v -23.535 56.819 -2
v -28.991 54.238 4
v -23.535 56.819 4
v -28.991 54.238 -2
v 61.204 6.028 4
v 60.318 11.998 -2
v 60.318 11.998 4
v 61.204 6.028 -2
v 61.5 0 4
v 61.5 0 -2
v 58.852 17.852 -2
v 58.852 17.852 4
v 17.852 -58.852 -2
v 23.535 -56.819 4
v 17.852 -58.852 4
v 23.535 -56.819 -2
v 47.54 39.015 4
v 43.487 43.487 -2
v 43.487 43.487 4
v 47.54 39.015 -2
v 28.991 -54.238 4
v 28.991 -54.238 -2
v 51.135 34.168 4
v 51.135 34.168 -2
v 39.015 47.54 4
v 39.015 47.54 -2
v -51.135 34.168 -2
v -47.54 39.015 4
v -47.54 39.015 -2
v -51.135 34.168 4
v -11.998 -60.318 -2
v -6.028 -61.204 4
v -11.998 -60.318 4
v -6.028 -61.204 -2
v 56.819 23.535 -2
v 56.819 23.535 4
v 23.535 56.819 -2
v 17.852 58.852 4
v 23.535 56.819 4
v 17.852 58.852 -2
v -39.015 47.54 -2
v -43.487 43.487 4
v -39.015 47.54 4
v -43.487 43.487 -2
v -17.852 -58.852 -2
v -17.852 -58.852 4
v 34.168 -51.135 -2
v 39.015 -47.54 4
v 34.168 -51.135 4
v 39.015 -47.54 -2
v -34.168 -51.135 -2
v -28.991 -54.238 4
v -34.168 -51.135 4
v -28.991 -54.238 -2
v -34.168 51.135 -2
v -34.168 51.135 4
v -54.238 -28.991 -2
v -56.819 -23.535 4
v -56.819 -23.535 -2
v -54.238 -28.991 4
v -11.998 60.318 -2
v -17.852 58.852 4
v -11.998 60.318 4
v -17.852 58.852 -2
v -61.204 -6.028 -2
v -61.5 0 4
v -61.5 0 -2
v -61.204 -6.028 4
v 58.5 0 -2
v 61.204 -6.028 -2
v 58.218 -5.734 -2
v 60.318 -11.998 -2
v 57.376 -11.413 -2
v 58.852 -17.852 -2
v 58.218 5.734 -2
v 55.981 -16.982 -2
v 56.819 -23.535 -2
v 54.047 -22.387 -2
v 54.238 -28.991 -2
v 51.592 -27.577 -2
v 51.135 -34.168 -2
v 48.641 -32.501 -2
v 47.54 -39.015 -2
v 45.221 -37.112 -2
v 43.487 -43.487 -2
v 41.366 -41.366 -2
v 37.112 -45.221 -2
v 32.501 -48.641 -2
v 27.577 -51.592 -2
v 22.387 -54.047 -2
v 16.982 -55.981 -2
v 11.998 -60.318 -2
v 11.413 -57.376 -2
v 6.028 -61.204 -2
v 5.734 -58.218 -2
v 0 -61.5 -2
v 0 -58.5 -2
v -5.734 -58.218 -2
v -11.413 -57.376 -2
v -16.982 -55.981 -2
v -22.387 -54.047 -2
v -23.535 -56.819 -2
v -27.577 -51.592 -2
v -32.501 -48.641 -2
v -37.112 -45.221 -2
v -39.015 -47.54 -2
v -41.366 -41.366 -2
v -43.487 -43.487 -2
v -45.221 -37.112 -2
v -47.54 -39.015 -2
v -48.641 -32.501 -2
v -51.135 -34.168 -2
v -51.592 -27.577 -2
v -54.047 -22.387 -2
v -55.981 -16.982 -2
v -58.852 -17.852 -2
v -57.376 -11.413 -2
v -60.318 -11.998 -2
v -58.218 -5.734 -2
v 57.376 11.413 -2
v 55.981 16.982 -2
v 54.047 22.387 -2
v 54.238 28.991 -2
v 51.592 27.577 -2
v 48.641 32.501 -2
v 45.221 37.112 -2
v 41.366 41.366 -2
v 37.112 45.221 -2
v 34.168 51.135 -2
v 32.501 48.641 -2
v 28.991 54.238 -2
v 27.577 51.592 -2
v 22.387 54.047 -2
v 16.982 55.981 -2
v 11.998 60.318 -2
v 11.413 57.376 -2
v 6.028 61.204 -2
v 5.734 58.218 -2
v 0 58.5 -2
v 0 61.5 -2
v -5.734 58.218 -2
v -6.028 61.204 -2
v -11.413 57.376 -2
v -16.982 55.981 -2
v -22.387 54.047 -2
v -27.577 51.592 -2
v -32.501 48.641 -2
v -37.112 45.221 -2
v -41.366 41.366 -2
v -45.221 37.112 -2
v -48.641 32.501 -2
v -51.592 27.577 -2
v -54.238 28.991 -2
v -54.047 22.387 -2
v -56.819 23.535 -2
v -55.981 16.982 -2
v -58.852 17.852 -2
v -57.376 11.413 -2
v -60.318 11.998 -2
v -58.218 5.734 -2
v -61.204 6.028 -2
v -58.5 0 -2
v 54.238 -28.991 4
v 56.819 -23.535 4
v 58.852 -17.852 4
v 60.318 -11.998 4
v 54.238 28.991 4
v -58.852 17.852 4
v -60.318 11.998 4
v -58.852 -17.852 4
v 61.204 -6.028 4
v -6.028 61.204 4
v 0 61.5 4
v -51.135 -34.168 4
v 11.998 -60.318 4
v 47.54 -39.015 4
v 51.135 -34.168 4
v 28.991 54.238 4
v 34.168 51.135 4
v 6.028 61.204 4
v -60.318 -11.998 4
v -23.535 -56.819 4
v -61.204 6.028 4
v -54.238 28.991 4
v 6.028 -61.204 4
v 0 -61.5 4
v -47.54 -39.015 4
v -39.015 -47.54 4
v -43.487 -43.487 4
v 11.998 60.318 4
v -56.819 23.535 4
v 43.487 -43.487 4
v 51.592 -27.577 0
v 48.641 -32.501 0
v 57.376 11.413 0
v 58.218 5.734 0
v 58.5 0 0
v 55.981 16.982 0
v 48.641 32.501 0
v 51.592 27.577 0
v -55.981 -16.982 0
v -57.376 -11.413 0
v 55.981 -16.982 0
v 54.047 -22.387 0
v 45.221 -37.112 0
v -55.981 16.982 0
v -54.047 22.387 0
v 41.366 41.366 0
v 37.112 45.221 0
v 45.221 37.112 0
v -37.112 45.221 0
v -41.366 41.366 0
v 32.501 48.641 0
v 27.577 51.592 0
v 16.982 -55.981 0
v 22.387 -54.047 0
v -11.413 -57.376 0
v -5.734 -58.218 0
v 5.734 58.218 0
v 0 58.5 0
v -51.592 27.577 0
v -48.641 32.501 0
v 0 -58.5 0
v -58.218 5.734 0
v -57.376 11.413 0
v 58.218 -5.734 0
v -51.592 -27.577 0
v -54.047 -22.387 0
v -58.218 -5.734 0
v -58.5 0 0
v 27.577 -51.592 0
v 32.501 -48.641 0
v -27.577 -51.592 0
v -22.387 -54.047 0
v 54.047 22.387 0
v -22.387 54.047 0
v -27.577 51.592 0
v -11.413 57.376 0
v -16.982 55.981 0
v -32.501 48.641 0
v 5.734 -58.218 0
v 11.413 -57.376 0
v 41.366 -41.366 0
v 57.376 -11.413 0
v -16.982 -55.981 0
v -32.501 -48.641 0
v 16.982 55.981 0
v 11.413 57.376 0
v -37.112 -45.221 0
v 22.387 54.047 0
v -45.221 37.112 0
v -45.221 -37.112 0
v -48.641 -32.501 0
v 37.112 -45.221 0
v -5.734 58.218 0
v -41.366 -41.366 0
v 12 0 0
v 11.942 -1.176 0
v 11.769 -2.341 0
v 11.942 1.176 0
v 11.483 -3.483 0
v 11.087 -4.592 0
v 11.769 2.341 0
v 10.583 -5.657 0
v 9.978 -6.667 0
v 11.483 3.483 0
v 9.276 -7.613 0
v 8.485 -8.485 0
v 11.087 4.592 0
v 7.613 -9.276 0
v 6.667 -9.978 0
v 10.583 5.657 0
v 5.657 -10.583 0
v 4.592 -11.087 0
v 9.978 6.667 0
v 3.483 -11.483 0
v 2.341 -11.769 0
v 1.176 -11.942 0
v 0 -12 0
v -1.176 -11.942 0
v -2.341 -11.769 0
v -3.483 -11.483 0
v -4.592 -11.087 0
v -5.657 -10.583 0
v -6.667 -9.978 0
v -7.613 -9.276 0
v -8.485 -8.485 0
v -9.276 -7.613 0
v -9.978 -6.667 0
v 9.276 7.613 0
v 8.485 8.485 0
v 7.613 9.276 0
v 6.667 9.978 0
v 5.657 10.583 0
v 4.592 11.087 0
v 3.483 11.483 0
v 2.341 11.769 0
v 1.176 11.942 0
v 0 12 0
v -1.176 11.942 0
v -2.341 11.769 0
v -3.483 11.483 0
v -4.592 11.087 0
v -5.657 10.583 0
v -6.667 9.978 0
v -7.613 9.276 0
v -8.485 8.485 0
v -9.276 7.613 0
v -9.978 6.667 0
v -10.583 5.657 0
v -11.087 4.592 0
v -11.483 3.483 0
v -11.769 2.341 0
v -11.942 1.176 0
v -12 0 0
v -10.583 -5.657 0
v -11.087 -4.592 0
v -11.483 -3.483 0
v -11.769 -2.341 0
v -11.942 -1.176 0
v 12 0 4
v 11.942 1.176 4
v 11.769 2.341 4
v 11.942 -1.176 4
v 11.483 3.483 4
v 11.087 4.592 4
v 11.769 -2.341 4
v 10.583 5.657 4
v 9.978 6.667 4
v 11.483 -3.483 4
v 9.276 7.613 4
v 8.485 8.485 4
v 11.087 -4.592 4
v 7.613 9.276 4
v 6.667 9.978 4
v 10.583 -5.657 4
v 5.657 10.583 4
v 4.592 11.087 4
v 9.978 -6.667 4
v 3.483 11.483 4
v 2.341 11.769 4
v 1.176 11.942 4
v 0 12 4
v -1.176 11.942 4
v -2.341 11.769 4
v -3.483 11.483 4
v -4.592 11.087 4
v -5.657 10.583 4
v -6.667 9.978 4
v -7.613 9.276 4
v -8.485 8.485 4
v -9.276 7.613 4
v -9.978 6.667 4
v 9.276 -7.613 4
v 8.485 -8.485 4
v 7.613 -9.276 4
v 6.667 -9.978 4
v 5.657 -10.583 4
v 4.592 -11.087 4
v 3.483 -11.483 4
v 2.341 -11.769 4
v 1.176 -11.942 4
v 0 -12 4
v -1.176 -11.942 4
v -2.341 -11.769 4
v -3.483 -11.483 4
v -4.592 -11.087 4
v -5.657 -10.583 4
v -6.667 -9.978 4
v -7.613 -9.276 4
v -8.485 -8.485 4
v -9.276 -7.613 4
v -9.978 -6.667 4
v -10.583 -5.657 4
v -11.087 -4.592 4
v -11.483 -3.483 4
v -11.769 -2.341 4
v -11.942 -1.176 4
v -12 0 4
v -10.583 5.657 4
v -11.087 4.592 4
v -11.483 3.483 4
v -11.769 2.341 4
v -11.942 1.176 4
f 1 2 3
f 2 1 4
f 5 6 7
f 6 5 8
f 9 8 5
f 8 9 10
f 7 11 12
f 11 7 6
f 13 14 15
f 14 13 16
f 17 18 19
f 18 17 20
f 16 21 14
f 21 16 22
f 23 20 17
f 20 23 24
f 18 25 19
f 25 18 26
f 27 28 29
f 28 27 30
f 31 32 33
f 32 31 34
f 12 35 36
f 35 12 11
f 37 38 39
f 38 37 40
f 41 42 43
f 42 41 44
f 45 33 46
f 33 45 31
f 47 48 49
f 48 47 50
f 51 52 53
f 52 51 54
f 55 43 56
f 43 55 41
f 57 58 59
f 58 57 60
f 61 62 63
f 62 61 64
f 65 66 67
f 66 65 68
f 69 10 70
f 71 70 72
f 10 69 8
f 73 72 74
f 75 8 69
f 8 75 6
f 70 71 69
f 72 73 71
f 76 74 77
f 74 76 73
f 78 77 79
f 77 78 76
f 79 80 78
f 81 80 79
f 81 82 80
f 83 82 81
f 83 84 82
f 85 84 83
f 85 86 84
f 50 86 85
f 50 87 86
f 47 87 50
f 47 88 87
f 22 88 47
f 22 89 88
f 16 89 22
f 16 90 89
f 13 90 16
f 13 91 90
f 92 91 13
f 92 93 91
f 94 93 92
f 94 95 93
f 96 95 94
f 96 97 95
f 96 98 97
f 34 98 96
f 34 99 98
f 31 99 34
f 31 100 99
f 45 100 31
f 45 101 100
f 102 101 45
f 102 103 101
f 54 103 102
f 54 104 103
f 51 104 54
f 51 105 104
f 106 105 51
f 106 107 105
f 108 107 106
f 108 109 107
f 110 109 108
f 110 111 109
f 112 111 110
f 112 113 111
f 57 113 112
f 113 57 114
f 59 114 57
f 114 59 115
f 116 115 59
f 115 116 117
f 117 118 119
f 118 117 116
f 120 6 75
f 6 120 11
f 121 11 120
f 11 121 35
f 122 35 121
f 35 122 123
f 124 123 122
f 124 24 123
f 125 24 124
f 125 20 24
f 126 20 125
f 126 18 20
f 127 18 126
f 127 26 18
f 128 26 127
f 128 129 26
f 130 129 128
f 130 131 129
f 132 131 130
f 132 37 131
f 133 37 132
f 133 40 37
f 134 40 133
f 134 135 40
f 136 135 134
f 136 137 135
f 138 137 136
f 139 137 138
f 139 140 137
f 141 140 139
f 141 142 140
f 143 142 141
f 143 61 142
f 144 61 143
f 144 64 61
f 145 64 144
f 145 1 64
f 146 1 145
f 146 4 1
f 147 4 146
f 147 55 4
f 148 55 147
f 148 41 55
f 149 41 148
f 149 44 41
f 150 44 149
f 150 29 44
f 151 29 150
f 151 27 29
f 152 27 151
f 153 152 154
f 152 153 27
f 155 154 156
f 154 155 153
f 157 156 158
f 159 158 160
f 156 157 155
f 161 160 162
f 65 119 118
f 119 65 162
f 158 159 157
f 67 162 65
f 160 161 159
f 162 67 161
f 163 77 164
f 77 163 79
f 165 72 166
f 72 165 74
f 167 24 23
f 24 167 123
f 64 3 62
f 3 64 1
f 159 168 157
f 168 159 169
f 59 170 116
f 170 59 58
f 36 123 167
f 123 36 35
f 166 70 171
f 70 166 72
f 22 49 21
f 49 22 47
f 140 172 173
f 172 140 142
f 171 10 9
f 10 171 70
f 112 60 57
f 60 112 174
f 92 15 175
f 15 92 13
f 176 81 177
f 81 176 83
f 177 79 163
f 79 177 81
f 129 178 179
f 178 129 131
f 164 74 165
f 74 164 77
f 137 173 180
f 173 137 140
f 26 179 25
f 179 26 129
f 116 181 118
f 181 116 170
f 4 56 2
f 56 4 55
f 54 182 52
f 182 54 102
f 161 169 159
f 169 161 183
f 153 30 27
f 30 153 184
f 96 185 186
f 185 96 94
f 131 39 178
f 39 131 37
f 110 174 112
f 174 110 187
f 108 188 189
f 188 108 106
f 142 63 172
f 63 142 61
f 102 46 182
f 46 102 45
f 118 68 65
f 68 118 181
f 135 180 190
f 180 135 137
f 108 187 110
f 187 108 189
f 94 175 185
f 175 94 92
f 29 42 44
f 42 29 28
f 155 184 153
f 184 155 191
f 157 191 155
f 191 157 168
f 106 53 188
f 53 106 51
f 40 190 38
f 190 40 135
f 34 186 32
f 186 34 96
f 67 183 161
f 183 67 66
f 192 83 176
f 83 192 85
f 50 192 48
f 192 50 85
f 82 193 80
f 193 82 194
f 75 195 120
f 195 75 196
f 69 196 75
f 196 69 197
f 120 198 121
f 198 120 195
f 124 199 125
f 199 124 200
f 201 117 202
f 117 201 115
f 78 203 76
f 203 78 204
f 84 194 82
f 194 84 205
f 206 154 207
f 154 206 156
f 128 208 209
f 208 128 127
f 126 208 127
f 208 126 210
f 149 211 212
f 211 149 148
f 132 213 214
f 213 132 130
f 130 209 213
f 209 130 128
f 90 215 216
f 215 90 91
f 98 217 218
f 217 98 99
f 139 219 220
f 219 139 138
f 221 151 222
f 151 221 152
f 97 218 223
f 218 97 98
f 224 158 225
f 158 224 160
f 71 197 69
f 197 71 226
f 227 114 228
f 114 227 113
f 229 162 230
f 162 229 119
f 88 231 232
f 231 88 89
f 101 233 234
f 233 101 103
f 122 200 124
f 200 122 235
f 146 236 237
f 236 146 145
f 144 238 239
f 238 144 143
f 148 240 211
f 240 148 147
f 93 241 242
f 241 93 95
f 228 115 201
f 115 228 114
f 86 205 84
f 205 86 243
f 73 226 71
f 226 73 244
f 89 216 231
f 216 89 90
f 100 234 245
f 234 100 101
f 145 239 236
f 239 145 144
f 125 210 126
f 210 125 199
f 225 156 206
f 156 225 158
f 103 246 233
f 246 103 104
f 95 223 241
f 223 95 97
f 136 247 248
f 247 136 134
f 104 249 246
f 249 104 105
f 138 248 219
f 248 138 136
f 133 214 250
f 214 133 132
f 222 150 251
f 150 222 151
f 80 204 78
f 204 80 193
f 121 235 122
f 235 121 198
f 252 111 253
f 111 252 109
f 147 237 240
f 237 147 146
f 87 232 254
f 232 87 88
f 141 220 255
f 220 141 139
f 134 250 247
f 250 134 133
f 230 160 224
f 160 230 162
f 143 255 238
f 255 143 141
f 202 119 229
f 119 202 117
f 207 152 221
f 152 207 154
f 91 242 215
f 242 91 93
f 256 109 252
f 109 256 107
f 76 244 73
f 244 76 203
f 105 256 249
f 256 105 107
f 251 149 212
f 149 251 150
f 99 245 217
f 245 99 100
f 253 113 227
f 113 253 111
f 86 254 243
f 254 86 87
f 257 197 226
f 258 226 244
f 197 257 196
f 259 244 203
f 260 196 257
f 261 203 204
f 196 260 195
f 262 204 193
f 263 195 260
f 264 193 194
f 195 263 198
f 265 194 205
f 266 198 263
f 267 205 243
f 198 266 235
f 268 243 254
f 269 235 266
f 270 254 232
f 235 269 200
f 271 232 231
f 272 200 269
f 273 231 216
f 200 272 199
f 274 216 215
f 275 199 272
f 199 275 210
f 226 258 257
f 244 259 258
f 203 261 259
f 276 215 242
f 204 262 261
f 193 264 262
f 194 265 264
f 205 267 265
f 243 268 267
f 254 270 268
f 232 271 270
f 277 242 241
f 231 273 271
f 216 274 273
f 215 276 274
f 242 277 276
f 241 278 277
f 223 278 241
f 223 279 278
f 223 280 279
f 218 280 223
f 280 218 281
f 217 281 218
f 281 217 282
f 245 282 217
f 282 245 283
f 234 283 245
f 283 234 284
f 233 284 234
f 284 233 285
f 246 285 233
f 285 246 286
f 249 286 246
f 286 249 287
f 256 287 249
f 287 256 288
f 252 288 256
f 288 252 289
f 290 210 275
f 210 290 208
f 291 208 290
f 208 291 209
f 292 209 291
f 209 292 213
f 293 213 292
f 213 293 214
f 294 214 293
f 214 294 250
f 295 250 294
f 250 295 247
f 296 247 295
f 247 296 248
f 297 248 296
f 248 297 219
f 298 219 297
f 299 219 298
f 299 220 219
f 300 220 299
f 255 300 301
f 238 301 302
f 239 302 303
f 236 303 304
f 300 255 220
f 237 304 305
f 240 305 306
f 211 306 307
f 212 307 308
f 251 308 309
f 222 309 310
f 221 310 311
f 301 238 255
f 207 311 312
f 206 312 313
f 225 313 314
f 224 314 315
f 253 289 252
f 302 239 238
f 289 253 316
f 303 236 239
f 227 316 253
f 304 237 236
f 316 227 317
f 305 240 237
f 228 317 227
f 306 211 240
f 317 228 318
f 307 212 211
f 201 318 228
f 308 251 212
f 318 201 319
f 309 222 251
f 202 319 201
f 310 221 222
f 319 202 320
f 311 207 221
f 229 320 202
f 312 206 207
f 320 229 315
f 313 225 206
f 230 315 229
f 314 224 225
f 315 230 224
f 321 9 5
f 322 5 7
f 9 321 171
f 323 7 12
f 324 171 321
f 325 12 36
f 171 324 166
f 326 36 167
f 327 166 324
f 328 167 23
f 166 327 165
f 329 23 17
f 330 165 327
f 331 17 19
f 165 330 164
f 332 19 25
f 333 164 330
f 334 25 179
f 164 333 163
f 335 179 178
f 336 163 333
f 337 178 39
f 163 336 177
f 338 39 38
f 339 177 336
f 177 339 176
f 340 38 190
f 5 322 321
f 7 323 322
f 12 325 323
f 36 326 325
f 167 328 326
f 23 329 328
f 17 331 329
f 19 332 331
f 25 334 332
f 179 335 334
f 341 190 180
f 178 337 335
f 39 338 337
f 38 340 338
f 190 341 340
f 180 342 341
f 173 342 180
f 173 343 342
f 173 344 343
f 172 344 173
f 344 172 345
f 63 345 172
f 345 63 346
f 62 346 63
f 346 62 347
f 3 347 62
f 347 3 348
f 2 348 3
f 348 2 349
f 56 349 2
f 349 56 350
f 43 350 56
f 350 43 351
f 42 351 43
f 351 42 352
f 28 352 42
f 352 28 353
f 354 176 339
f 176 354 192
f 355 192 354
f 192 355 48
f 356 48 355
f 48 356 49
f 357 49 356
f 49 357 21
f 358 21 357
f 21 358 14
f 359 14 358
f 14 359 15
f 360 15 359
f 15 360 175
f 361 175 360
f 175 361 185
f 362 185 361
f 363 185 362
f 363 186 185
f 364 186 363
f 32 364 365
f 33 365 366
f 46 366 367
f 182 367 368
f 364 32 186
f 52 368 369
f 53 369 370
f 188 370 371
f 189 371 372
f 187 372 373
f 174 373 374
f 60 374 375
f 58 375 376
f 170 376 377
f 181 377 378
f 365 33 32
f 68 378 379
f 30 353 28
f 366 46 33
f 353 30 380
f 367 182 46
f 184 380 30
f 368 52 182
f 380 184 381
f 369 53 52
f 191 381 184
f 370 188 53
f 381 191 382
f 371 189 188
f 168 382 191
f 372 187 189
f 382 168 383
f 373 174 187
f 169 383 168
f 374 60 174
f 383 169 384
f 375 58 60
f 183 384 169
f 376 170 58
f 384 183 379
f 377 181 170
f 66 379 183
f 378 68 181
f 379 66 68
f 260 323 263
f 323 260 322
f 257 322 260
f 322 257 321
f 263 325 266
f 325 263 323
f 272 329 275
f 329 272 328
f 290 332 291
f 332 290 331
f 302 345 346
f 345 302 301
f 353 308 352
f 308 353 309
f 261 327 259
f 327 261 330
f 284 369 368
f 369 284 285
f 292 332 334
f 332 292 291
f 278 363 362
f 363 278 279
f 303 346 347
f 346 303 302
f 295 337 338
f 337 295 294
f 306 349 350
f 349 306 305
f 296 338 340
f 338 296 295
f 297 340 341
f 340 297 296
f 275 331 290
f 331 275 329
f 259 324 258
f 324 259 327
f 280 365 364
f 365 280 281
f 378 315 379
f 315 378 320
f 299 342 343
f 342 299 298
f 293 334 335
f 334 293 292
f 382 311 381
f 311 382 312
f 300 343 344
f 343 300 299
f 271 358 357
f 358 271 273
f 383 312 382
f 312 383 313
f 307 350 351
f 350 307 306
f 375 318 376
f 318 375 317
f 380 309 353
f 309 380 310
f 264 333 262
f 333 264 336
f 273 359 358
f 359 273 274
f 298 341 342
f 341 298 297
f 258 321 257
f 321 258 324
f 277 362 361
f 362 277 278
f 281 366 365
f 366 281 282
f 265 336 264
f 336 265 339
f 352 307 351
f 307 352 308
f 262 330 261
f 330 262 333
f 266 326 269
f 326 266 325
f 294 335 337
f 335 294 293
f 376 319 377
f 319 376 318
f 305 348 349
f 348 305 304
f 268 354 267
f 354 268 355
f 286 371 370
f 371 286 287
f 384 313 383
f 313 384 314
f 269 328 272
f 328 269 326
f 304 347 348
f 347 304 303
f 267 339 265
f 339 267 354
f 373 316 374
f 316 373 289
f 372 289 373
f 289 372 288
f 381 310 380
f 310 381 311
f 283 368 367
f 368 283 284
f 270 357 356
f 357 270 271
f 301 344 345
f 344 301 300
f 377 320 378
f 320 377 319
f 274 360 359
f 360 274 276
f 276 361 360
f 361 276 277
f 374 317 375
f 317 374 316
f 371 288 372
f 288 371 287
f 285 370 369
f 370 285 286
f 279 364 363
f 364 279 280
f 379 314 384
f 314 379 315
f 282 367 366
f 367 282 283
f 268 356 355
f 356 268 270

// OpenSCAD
// Generated by SolidPython 1.1.3 on 2026-10-31 12:54:00
$fn = 64;
// 03_lid


difference() {
	union() {
		cylinder(center = false, h = 4.0000000000, r = 61.5000000000);
		translate(v = [0, 0, -2]) {
			difference() {
				cylinder(center = false, h = 3, r = 61.5000000000);
				cylinder(center = false, h = 4, r = 58.5000000000);
			}
		}
	}
	cylinder(center = false, h = 6.0000000000, r = 12);
}
/***********************************************
*********      SolidPython code:      **********
************************************************
 
#!/usr/bin/env python3
"""
Parametric 6-compartment automatic pill dispenser
Compatible with MDP Smart Pill Dispenser project assumptions
(6 slots, one preloaded item per slot, servo gate release)

Dimensions chosen for easy FDM printing (PLA/PETG), common SG90/MG90S servo,
and typical tablet sizes. All units in mm.

Exports STL files ready for slicing.
"""

from solid import *
from solid.utils import *
import os

# ===================== PARAMETERS (edit these) =====================
NUM_COMPARTMENTS = 6
TRAY_OUTER_DIA = 120.0
TRAY_HEIGHT = 28.0
WALL = 2.2
SHAFT_DIA = 8.0          # central shaft / coupler hole
HUB_DIA = 22.0
COMPARTMENT_DEPTH = 22.0 # radial depth of each pocket
BASE_DIA = 140.0
BASE_HEIGHT = 45.0
ELECTRONICS_BAY_W = 70.0
ELECTRONICS_BAY_D = 55.0
ELECTRONICS_BAY_H = 28.0
OUTLET_W = 18.0
OUTLET_H = 14.0
SERVO_MOUNT_W = 23.0     # typical SG90 body width
SERVO_MOUNT_H = 12.0
GATE_THICK = 2.0
GATE_W = 20.0
GATE_H = 16.0
LID_HEIGHT = 4.0
CLEARANCE = 0.4          # print clearance

OUTPUT_DIR = os.path.dirname(os.path.abspath(__file__))

# ===================== HELPER =====================
def cylinder_z(h, r=None, d=None, center=False):
    if d is not None:
        r = d / 2.0
    return cylinder(h=h, r=r, center=center)

# ===================== TRAY (carousel) =====================
def make_tray():
    outer_r = TRAY_OUTER_DIA / 2
    hub_r = HUB_DIA / 2
    shaft_r = SHAFT_DIA / 2 + CLEARANCE / 2
    angle_step = 360.0 / NUM_COMPARTMENTS
    floor_h = WALL

    # Solid outer cylinder
    tray = cylinder_z(TRAY_HEIGHT, r=outer_r)

    # Remove material above the floor to create the open compartments
    # Keep outer wall thickness = WALL
    void = translate([0, 0, floor_h])(
        cylinder_z(TRAY_HEIGHT - floor_h + 1, r=outer_r - WALL)
    )
    tray = difference()(tray, void)

    # Add radial divider walls (from hub to outer wall)
    for i in range(NUM_COMPARTMENTS):
        a = i * angle_step
        wall = rotate([0, 0, a])(
            translate([hub_r - 1, -WALL / 2, 0])(
                cube([outer_r - hub_r + 2, WALL, TRAY_HEIGHT])
            )
        )
        tray = union()(tray, wall)

    # Solid central hub
    hub = cylinder_z(TRAY_HEIGHT, r=hub_r)
    tray = union()(tray, hub)

    # Shaft hole through hub
    shaft = translate([0, 0, -1])(
        cylinder_z(TRAY_HEIGHT + 2, r=shaft_r)
    )
    tray = difference()(tray, shaft)

    # Small radial indexing holes (for optical/home sensor)
    for i in range(NUM_COMPARTMENTS):
        a = i * angle_step + angle_step / 2.0
        hole = rotate([0, 0, a])(
            translate([outer_r - 5, 0, TRAY_HEIGHT / 2])(
                rotate([0, 90, 0])(
                    cylinder_z(10, r=1.6, center=True)
                )
            )
        )
        tray = difference()(tray, hole)

    return tray

# ===================== BASE =====================
def make_base():
    outer_r = BASE_DIA / 2
    base = cylinder_z(BASE_HEIGHT, r=outer_r)

    # Hollow main cavity for tray + mechanism
    cavity_r = TRAY_OUTER_DIA / 2 + 3
    cavity = translate([0, 0, 8])(
        cylinder_z(BASE_HEIGHT, r=cavity_r)
    )
    base = difference()(base, cavity)

    # Electronics bay (side cutout / pocket)
    bay = translate([
        outer_r - ELECTRONICS_BAY_D/2 - 8,
        -ELECTRONICS_BAY_W/2,
        5
    ])(
        cube([ELECTRONICS_BAY_D + 10, ELECTRONICS_BAY_W, ELECTRONICS_BAY_H])
    )
    base = difference()(base, bay)

    # Outlet chute at front
    outlet = translate([
        cavity_r - 5,
        -OUTLET_W/2,
        8
    ])(
        cube([30, OUTLET_W, OUTLET_H])
    )
    base = difference()(base, outlet)

    # Motor mount platform (central raised area under tray)
    mount = cylinder_z(10, r=28)
    base = union()(base, mount)

    # Shaft clearance hole through mount
    shaft_hole = cylinder_z(15, r=SHAFT_DIA/2 + 1.5)
    base = difference()(base, shaft_hole)

    # Servo mount pocket (for gate actuator) - near outlet
    servo_pocket = translate([
        cavity_r - 15,
        OUTLET_W/2 + 5,
        10
    ])(
        cube([SERVO_MOUNT_W + 2, 12, SERVO_MOUNT_H + 2])
    )
    base = difference()(base, servo_pocket)

    # Mounting screw holes for electronics / lid (M3)
    for angle in [45, 135, 225, 315]:
        hole = rotate([0, 0, angle])(
            translate([outer_r - 12, 0, 0])(
                cylinder_z(BASE_HEIGHT + 2, r=1.7)
            )
        )
        base = difference()(base, hole)

    # Bottom feet
    for angle in [0, 90, 180, 270]:
        foot = rotate([0, 0, angle])(
            translate([outer_r - 18, 0, 0])(
                cylinder_z(3, r=8)
            )
        )
        base = union()(base, foot)

    return base

# ===================== LID =====================
def make_lid():
    outer_r = TRAY_OUTER_DIA / 2 + 1.5
    lid = cylinder_z(LID_HEIGHT, r=outer_r)
    # Lip that sits on tray
    lip = translate([0, 0, -2])(
        difference()(
            cylinder_z(3, r=outer_r),
            cylinder_z(4, r=outer_r - 3)
        )
    )
    lid = union()(lid, lip)
    # Central handle / fill hole (optional small opening)
    fill = cylinder_z(LID_HEIGHT + 2, r=12)
    lid = difference()(lid, fill)
    # Label area
    return lid

# ===================== GATE (servo flap) =====================
def make_gate():
    # Simple rectangular flap with hinge pin holes
    gate = cube([GATE_W, GATE_THICK, GATE_H])
    # Hinge bosses
    boss1 = translate([-2, GATE_THICK/2, GATE_H - 3])(
        rotate([90, 0, 0])(cylinder_z(GATE_THICK + 4, r=2.5, center=True))
    )
    boss2 = translate([GATE_W + 2, GATE_THICK/2, GATE_H - 3])(
        rotate([90, 0, 0])(cylinder_z(GATE_THICK + 4, r=2.5, center=True))
    )
    gate = union()(gate, boss1, boss2)
    # Pin holes
    pin1 = translate([-2, GATE_THICK/2, GATE_H - 3])(
        rotate([90, 0, 0])(cylinder_z(GATE_THICK + 6, r=1.1, center=True))
    )
    pin2 = translate([GATE_W + 2, GATE_THICK/2, GATE_H - 3])(
        rotate([90, 0, 0])(cylinder_z(GATE_THICK + 6, r=1.1, center=True))
    )
    gate = difference()(gate, pin1, pin2)
    return gate

# ===================== GENERATE =====================
def export(obj, name):
    path = os.path.join(OUTPUT_DIR, f"{name}.scad")
    scad_render_to_file(obj, path, file_header=f"$fn = 64;\n// {name}\n")
    print(f"Wrote {path}")
    # Also try to produce STL via openscad if available, else leave .scad
    return path

if __name__ == "__main__":
    print("Generating parametric pill dispenser parts...")
    tray = make_tray()
    base = make_base()
    lid = make_lid()
    gate = make_gate()

    export(tray, "01_tray_carousel_6slot")
    export(base, "02_base_enclosure")
    export(lid, "03_lid")
    export(gate, "04_servo_gate")

    # Assembly preview (not for print)
    assembly = union()(
        base,
        translate([0, 0, 12])(color("orange")(tray)),
        translate([0, 0, 12 + TRAY_HEIGHT + 1])(color("lightblue")(lid)),
        translate([TRAY_OUTER_DIA/2 - 5, -GATE_W/2, 12])(color("red")(gate))
    )
    export(assembly, "00_assembly_preview")

    print("\nDone. Open the .scad files in OpenSCAD (free) → Design → Export as STL")
    print("Or use FreeCAD: File → Import → select .scad (or convert via OpenSCAD)")
    print(f"Files are in: {OUTPUT_DIR}")
 
 
************************************************/
